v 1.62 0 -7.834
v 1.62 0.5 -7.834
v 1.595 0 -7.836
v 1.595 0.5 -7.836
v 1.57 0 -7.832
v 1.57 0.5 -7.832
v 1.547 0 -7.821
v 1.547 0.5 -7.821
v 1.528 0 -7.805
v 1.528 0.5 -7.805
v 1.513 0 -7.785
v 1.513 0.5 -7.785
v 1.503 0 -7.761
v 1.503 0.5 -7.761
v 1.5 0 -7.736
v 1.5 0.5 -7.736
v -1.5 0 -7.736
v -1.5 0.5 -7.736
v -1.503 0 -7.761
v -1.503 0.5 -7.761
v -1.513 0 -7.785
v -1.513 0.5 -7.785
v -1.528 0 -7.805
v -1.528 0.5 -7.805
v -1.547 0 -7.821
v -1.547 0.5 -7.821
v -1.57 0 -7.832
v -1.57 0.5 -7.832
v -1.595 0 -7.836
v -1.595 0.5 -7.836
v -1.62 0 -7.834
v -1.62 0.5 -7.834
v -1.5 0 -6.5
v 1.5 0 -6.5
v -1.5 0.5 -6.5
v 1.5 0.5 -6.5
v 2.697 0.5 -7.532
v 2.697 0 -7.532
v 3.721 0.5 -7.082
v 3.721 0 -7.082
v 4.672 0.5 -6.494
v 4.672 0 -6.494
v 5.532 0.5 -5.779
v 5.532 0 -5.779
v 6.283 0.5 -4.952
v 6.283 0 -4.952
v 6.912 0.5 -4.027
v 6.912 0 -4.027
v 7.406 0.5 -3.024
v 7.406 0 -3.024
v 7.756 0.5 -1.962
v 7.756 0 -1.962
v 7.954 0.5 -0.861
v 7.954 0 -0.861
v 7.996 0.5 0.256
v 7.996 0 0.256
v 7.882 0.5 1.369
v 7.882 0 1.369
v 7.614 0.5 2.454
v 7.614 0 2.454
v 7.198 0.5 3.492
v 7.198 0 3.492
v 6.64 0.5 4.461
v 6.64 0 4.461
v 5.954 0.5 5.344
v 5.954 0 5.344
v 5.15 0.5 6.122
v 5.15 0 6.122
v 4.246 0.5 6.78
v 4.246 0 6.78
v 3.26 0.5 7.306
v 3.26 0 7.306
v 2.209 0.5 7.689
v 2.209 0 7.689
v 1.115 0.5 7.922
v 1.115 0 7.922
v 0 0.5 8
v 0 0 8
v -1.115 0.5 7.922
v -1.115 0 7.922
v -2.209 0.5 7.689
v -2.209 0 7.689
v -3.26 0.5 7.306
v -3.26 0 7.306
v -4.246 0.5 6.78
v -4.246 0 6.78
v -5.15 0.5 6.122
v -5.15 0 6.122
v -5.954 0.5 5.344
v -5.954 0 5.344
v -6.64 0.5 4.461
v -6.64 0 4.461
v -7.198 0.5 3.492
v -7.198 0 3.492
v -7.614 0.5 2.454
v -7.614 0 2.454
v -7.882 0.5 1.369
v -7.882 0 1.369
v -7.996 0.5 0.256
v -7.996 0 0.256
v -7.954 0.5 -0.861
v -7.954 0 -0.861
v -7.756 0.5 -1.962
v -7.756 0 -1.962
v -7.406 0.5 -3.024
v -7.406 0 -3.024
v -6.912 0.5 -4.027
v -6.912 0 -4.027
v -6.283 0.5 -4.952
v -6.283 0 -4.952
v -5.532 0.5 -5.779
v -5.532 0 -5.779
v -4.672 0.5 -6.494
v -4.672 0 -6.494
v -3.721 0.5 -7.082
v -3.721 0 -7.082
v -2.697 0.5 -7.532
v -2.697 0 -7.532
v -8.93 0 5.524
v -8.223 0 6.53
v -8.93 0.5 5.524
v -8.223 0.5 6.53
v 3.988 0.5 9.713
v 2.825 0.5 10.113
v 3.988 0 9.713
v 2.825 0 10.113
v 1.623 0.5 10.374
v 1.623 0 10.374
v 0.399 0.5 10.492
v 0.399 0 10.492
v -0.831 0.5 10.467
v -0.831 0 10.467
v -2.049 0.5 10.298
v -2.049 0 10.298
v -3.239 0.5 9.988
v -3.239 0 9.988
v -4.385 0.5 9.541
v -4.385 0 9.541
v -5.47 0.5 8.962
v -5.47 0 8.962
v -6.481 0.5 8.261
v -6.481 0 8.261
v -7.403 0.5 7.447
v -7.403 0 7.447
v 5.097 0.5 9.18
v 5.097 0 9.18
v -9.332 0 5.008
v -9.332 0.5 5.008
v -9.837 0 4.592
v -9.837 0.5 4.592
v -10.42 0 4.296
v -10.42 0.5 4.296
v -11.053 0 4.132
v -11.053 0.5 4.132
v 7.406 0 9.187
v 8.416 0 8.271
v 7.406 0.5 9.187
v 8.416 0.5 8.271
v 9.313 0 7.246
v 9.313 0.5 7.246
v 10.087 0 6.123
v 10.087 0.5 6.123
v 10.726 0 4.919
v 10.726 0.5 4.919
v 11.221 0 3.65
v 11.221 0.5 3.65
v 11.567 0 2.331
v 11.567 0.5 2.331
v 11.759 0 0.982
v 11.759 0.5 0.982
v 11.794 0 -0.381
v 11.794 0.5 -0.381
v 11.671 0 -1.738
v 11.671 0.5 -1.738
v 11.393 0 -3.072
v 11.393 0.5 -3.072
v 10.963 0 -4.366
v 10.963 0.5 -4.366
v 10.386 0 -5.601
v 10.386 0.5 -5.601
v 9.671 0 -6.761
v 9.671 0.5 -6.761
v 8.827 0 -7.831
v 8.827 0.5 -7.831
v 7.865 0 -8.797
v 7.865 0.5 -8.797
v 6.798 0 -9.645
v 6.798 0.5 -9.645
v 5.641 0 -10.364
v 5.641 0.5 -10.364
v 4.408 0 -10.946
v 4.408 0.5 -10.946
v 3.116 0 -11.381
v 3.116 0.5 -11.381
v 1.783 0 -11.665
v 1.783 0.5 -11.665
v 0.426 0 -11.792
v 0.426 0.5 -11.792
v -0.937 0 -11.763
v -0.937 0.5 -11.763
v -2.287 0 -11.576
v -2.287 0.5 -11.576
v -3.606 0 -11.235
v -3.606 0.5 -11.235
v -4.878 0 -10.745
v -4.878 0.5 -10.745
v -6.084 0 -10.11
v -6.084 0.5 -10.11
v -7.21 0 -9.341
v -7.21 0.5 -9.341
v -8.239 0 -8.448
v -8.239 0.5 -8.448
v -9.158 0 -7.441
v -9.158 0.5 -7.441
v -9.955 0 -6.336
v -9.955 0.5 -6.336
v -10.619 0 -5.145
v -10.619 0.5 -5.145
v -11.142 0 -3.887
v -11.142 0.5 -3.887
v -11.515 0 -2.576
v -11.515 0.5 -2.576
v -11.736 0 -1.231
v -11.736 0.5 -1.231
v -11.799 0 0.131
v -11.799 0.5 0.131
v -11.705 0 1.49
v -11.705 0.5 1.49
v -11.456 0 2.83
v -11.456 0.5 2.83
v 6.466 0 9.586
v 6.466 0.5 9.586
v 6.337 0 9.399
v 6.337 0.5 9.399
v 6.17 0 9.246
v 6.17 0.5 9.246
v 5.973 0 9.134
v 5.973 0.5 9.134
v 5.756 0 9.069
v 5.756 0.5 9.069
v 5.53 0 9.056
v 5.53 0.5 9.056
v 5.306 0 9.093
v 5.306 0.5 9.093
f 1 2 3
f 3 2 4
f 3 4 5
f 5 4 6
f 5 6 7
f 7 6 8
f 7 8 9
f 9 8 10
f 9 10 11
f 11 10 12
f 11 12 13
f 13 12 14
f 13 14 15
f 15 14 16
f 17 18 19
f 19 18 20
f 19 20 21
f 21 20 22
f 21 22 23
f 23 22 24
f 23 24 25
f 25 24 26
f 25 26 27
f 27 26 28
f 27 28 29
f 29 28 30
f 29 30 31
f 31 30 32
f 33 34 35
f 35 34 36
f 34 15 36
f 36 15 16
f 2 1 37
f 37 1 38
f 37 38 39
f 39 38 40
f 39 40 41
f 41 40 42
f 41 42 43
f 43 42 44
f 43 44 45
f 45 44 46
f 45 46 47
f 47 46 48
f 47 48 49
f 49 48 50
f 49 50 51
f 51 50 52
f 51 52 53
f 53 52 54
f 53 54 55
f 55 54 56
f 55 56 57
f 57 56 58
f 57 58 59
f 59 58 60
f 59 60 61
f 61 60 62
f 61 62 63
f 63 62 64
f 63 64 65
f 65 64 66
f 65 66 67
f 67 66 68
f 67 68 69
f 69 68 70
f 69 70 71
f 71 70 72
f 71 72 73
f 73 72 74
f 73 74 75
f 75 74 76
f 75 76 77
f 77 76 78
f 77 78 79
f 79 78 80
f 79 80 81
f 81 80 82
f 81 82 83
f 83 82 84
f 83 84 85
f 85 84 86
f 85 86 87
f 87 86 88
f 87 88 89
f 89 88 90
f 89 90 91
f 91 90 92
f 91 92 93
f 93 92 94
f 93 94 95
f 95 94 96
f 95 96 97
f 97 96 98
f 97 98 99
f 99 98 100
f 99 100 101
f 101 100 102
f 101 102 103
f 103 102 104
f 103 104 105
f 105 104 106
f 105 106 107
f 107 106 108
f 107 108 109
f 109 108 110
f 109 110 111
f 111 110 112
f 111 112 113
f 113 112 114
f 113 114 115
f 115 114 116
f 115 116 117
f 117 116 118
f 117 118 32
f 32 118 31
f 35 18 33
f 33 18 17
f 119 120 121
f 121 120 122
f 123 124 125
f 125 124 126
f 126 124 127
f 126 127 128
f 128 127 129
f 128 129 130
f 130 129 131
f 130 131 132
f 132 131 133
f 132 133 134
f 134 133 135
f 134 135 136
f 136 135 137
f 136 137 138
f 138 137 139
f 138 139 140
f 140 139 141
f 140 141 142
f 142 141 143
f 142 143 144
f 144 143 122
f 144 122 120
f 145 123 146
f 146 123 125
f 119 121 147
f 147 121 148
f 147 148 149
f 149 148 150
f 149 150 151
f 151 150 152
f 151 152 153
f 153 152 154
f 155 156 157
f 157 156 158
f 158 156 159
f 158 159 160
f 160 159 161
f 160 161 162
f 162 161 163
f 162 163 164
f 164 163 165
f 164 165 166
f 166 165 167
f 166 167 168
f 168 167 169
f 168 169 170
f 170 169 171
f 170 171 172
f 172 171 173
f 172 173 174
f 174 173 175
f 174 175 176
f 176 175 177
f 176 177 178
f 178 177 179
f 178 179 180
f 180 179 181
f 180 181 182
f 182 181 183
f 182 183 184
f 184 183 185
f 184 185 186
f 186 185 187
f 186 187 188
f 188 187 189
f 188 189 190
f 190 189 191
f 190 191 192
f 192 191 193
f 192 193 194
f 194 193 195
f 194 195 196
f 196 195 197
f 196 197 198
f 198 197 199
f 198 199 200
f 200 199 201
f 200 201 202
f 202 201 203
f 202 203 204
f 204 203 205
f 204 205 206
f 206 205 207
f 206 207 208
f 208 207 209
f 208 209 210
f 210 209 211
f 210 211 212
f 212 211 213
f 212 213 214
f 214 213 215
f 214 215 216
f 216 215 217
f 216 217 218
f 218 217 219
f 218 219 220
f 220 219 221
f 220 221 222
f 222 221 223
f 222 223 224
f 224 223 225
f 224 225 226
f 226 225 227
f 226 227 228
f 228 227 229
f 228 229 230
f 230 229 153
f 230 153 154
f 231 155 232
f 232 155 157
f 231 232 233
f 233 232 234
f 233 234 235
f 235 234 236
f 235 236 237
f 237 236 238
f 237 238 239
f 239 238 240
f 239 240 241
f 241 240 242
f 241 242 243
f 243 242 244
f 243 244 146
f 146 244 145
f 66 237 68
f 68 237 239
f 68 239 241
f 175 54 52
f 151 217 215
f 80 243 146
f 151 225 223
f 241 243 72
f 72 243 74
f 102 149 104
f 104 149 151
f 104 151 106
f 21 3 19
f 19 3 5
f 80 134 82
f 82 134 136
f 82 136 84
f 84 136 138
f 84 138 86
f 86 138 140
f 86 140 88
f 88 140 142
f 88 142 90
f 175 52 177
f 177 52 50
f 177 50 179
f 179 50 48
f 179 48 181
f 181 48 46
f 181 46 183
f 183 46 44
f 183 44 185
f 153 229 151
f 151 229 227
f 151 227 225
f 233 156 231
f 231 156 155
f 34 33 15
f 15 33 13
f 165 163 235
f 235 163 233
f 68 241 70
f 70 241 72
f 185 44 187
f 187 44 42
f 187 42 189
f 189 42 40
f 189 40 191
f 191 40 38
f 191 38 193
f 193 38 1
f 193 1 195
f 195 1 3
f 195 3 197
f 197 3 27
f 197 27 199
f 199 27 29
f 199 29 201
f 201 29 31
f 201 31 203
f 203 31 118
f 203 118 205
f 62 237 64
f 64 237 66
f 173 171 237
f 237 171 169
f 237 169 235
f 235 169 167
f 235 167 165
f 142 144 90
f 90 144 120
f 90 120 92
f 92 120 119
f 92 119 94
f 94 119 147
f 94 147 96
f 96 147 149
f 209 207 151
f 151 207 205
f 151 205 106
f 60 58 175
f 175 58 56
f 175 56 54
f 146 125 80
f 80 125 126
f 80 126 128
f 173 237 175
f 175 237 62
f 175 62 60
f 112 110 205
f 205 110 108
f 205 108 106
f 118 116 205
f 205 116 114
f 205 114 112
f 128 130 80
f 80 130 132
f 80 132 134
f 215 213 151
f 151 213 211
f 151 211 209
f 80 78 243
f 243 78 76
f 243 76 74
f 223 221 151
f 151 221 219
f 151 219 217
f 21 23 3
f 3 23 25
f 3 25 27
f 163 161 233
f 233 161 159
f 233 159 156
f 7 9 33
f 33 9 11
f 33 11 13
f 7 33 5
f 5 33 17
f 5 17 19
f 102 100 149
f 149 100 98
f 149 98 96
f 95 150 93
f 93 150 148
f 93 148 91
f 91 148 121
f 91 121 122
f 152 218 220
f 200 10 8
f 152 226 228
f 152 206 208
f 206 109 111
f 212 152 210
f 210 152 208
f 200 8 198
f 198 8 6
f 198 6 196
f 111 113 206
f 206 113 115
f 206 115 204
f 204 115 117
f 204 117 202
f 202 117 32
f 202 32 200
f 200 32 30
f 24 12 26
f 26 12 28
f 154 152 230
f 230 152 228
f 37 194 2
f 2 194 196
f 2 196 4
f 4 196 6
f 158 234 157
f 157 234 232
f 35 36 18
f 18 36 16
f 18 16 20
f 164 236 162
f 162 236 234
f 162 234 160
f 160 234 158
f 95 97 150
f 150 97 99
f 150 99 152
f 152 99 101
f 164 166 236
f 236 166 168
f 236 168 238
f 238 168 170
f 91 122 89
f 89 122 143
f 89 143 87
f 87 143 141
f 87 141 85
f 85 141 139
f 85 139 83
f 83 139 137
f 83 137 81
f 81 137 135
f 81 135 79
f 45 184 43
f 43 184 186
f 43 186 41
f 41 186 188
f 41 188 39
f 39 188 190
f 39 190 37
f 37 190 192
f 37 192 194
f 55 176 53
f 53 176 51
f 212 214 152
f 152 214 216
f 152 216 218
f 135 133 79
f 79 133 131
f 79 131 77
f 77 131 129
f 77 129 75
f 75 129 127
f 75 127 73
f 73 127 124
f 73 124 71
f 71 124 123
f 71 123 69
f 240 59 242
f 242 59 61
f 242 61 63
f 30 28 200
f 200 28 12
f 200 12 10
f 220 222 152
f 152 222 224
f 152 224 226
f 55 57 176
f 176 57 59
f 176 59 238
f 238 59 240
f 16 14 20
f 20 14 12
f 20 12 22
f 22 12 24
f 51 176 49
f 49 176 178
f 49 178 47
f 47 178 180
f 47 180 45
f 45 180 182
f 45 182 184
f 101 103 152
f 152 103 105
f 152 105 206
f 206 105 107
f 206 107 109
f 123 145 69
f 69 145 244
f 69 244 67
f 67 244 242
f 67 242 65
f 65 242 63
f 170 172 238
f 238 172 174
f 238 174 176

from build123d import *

# Parameters (mm, degrees)
BOSS_EXTRUDE1_DEPTH = 0.5
FILLET1_R           = 0.1


with BuildPart() as part:
    # Sketch1 → Boss-Extrude1 (new body)
    with BuildSketch(Plane(origin=(0, 0, 0), x_dir=(1, 0, 0), z_dir=(0, 1, 0))):
        with BuildLine():
            Line((7.405833782, -9.18660035), (6.465631312, -9.585692621))
            ThreePointArc((6.465631312, -9.585692621), (5.866379853, -9.095515782), (5.096810535, -9.180006665))
            ThreePointArc((5.096810535, -9.180006665), (-2.64863632, -10.160449087), (-8.929748506, -5.523548825))
            ThreePointArc((-8.929748506, -5.523548825), (-9.83687626, -4.59242065), (-11.052731833, -4.132447099))
            ThreePointArc((-11.052731833, -4.132447099), (3.116261, 11.381077163), (7.405833782, -9.18660035))
        make_face()
        with BuildLine():
            Line((-1.5, 6.5), (1.5, 6.5))
            Line((1.5, 6.5), (1.5, 7.858116823))
            ThreePointArc((1.5, 7.858116823), (0, -8), (-1.5, 7.858116823))
            Line((-1.5, 7.858116823), (-1.5, 6.5))
        make_face(mode=Mode.SUBTRACT)
    extrude(amount=BOSS_EXTRUDE1_DEPTH)

    # Fillet1
    fillet1_edges = [part.edges().sort_by_distance(p)[0] for p in [
        (-1.5, 0.25, -7.858116823),
        (1.5, 0.25, -7.858116823),
    ]]
    fillet(fillet1_edges, radius=FILLET1_R)


solid = part.part
